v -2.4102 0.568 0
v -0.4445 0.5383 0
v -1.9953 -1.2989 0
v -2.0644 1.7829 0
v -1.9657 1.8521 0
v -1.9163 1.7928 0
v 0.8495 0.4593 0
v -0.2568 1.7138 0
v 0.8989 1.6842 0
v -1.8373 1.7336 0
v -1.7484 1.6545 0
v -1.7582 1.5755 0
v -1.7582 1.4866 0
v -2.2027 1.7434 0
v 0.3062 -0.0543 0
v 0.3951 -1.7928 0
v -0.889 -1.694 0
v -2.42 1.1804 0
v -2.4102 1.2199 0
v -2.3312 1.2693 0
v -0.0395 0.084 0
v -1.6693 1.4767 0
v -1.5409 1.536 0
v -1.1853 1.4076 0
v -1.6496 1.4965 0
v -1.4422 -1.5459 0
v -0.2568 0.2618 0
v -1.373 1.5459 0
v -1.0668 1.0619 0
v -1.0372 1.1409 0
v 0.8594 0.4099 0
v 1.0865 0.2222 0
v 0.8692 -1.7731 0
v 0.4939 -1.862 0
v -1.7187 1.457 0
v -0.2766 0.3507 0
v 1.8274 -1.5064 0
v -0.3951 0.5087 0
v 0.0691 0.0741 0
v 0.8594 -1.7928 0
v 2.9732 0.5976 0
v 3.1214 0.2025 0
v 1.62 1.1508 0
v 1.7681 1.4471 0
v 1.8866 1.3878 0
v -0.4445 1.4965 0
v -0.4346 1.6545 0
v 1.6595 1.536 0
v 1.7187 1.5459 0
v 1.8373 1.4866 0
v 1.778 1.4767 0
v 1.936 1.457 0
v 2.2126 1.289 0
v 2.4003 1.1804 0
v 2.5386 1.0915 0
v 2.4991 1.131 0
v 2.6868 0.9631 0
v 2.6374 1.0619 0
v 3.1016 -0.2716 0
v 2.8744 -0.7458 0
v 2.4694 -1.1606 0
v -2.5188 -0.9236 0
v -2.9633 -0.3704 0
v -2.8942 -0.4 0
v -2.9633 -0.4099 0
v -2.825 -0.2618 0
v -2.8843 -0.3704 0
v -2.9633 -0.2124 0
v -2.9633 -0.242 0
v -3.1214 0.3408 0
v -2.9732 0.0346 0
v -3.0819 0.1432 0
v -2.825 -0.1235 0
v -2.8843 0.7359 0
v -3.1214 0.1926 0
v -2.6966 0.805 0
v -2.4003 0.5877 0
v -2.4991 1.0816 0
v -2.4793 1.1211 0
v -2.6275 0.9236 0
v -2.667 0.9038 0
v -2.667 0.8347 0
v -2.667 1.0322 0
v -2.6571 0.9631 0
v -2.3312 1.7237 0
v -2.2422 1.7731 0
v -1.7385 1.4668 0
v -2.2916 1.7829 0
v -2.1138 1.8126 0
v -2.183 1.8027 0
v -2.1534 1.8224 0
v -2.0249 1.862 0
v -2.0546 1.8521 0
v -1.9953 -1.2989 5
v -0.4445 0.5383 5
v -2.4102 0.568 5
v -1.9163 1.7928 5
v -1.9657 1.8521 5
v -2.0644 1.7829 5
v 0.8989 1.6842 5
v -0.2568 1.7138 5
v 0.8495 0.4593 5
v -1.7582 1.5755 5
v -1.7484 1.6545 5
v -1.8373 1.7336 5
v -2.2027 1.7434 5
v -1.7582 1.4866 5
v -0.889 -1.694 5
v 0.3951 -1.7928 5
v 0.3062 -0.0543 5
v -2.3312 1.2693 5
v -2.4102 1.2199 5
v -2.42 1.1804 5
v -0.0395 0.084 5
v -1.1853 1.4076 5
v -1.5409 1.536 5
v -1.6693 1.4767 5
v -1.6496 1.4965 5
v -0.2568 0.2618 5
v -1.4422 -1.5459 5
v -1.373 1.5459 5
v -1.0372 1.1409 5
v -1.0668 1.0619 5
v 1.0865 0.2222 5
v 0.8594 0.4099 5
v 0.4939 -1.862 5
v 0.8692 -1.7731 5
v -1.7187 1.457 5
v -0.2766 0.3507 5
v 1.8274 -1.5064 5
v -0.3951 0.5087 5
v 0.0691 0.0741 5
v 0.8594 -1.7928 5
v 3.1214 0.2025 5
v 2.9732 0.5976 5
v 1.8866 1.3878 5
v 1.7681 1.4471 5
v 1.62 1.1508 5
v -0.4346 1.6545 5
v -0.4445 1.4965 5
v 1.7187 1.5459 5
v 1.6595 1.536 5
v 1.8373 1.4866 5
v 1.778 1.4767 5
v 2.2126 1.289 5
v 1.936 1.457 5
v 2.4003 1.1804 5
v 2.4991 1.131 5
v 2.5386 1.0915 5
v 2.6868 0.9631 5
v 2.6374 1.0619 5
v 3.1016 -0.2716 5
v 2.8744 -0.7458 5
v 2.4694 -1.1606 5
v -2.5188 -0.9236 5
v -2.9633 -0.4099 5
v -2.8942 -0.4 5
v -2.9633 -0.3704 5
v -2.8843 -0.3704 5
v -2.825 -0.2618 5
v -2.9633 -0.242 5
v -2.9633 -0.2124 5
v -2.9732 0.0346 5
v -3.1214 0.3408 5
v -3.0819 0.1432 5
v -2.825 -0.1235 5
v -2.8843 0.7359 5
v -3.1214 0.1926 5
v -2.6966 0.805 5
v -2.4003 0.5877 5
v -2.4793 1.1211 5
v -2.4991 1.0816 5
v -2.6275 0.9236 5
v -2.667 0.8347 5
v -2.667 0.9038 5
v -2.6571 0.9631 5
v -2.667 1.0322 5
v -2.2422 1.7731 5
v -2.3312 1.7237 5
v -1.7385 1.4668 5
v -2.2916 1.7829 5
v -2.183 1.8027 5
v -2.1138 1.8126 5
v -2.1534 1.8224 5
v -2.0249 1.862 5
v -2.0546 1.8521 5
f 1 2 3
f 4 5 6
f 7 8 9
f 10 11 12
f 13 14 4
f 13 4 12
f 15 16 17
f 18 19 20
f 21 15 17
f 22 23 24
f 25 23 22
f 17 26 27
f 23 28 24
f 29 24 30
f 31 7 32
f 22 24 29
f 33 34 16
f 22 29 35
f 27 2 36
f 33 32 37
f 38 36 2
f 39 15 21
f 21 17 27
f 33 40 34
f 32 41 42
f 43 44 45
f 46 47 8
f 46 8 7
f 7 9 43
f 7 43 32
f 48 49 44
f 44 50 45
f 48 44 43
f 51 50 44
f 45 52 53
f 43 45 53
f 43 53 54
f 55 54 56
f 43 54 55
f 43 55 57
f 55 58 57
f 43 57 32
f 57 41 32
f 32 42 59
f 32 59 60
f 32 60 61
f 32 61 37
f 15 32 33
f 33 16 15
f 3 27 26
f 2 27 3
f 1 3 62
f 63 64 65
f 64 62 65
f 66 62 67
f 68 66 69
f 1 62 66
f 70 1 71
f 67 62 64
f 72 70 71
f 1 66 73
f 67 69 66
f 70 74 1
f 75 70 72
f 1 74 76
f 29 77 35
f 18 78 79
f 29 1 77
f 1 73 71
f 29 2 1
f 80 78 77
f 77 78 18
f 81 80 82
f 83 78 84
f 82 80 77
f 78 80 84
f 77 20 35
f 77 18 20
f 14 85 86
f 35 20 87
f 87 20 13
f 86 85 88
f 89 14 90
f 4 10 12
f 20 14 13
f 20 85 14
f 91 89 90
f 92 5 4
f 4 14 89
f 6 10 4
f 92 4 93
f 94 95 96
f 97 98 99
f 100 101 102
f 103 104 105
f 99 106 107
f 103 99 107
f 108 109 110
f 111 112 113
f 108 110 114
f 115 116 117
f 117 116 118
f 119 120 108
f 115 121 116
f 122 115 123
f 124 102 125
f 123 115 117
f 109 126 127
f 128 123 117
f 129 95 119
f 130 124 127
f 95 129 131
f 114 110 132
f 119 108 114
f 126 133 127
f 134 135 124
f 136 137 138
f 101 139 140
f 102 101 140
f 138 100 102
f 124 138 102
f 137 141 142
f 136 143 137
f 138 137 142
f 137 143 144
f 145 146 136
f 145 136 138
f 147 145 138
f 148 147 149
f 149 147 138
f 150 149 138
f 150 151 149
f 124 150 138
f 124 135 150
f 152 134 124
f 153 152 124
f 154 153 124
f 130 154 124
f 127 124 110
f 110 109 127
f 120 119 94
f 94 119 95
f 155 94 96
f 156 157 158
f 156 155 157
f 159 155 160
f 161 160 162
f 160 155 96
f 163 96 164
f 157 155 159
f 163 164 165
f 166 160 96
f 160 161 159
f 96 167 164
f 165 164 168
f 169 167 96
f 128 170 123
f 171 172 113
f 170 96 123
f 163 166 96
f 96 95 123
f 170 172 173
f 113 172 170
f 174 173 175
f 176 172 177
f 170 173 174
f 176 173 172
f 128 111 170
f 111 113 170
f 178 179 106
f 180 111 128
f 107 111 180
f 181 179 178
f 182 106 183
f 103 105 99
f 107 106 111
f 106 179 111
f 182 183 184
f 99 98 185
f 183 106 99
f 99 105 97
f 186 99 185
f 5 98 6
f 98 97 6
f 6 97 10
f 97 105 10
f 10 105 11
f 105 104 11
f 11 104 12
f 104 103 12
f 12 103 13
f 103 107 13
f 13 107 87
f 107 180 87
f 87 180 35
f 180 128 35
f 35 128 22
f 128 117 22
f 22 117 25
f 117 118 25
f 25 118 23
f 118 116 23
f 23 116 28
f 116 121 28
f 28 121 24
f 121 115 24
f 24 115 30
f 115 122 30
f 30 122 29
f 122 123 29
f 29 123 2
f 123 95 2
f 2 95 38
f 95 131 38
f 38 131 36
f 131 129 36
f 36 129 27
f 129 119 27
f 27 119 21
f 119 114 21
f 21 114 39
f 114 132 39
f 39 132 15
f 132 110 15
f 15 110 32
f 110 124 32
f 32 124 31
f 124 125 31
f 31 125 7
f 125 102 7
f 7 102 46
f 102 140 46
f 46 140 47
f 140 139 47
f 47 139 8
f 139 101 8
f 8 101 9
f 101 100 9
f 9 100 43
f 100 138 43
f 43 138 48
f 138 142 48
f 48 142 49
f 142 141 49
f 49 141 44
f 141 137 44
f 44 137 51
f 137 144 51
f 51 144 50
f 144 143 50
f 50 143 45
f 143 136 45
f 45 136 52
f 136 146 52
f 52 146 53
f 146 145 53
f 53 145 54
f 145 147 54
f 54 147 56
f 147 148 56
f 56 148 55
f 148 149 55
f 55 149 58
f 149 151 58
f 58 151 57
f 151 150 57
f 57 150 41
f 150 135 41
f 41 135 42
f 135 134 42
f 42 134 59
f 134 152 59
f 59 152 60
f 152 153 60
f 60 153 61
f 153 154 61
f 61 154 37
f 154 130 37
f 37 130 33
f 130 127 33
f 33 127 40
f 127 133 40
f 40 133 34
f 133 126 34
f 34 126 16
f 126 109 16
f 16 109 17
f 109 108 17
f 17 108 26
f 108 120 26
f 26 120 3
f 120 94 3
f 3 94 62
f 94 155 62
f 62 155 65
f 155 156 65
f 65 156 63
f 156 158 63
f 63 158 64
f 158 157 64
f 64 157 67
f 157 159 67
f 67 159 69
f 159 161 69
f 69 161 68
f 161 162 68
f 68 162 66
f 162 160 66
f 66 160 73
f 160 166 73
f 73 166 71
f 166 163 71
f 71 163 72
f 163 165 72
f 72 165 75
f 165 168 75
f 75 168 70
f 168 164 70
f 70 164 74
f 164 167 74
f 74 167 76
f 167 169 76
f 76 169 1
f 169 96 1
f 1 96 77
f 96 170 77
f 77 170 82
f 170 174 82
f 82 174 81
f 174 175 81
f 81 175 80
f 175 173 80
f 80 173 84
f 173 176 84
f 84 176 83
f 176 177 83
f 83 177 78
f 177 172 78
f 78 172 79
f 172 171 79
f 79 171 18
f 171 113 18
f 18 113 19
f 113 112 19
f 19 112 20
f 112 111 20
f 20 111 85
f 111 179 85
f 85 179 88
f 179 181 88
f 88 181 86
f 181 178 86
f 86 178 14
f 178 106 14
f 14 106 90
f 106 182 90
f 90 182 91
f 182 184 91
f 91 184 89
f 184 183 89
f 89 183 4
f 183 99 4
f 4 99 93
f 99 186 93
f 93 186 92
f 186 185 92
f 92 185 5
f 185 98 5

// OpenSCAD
// Module names are of the form poly_<inkscape-path-id>().  As a result,
// you can associate a polygon in this OpenSCAD program with the corresponding
// SVG element in the Inkscape document by looking for the XML element with
// the attribute id="inkscape-path-id".

// fudge value is used to ensure that subtracted solids are a tad taller
// in the z dimension than the polygon being subtracted from.  This helps
// keep the resulting .stl file manifold.
fudge = 0.1;

module poly_path4320(h)
{
  scale([25.4/90, -25.4/90, 1]) union()
  {
    linear_extrude(height=h)
      polygon([[-0.910000,-6.072500],[3.185000,-5.967500],[5.740000,-4.077500],[5.880000,-5.442500],[6.090000,-5.477500],[6.265000,-5.127500],[6.300000,-5.232500],[6.510000,-5.267500],[6.685000,-4.917500],[6.860000,-5.162500],[7.840000,-4.567500],[8.505000,-4.182500],[8.855000,-4.007500],[8.995000,-3.867500],[9.345000,-3.762500],[9.520000,-3.412500],[10.535000,-2.117500],[11.060000,-0.717500],[10.990000,0.962500],[10.185000,2.642500],[8.750000,4.112500],[6.475000,5.337500],[3.080000,6.282500],[3.045000,6.352500],[1.750000,6.597500],[1.400000,6.352500],[-3.150000,6.002500],[-5.110000,5.477500],[-7.070000,4.602500],[-8.925000,3.272500],[-10.500000,1.452500],[-10.500000,1.312500],[-10.255000,1.417500],[-10.220000,1.312500],[-10.500000,0.857500],[-10.500000,0.752500],[-10.010000,0.927500],[-10.010000,0.437500],[-10.535000,-0.122500],[-10.920000,-0.507500],[-11.060000,-0.682500],[-11.060000,-1.207500],[-10.220000,-2.607500],[-9.555000,-2.852500],[-8.540000,-2.012500],[-8.505000,-2.082500],[-9.450000,-2.957500],[-9.450000,-3.202500],[-9.380000,-3.237500],[-9.310000,-3.272500],[-9.415000,-3.412500],[-9.450000,-3.657500],[-8.855000,-3.832500],[-8.785000,-3.972500],[-8.575000,-4.182500],[-8.540000,-4.322500],[-8.260000,-4.497500],[-8.260000,-5.267500],[-8.260000,-6.002500],[-8.260000,-6.107500],[-8.120000,-6.317500],[-7.945000,-6.282500],[-7.805000,-6.177500],[-7.805000,-6.177500],[-7.770000,-6.282500],[-7.735000,-6.387500],[-7.630000,-6.457500],[-7.490000,-6.422500],[-7.315000,-6.317500],[-7.280000,-6.562500],[-7.175000,-6.597500],[-6.965000,-6.562500],[-6.790000,-6.352500],[-6.510000,-6.142500],[-6.195000,-5.862500],[-6.230000,-5.582500],[-6.230000,-5.267500],[-6.160000,-5.197500],[-6.090000,-5.162500],[-5.915000,-5.232500],[-5.845000,-5.302500],[-5.460000,-5.442500],[-4.865000,-5.477500],[-4.200000,-4.987500],[-4.025000,-4.672500],[-3.675000,-4.042500],[-3.780000,-3.762500],[-1.575000,-1.907500],[-1.400000,-1.802500],[-0.980000,-1.242500],[-0.910000,-0.927500],[-0.140000,-0.297500],[0.245000,-0.262500],[1.085000,0.192500],[3.850000,-0.787500],[3.045000,-1.452500],[3.010000,-1.627500],[-1.575000,-5.302500],[-1.540000,-5.862500],[-0.910000,-6.072500]]);
  }
}

poly_path4320(5);
